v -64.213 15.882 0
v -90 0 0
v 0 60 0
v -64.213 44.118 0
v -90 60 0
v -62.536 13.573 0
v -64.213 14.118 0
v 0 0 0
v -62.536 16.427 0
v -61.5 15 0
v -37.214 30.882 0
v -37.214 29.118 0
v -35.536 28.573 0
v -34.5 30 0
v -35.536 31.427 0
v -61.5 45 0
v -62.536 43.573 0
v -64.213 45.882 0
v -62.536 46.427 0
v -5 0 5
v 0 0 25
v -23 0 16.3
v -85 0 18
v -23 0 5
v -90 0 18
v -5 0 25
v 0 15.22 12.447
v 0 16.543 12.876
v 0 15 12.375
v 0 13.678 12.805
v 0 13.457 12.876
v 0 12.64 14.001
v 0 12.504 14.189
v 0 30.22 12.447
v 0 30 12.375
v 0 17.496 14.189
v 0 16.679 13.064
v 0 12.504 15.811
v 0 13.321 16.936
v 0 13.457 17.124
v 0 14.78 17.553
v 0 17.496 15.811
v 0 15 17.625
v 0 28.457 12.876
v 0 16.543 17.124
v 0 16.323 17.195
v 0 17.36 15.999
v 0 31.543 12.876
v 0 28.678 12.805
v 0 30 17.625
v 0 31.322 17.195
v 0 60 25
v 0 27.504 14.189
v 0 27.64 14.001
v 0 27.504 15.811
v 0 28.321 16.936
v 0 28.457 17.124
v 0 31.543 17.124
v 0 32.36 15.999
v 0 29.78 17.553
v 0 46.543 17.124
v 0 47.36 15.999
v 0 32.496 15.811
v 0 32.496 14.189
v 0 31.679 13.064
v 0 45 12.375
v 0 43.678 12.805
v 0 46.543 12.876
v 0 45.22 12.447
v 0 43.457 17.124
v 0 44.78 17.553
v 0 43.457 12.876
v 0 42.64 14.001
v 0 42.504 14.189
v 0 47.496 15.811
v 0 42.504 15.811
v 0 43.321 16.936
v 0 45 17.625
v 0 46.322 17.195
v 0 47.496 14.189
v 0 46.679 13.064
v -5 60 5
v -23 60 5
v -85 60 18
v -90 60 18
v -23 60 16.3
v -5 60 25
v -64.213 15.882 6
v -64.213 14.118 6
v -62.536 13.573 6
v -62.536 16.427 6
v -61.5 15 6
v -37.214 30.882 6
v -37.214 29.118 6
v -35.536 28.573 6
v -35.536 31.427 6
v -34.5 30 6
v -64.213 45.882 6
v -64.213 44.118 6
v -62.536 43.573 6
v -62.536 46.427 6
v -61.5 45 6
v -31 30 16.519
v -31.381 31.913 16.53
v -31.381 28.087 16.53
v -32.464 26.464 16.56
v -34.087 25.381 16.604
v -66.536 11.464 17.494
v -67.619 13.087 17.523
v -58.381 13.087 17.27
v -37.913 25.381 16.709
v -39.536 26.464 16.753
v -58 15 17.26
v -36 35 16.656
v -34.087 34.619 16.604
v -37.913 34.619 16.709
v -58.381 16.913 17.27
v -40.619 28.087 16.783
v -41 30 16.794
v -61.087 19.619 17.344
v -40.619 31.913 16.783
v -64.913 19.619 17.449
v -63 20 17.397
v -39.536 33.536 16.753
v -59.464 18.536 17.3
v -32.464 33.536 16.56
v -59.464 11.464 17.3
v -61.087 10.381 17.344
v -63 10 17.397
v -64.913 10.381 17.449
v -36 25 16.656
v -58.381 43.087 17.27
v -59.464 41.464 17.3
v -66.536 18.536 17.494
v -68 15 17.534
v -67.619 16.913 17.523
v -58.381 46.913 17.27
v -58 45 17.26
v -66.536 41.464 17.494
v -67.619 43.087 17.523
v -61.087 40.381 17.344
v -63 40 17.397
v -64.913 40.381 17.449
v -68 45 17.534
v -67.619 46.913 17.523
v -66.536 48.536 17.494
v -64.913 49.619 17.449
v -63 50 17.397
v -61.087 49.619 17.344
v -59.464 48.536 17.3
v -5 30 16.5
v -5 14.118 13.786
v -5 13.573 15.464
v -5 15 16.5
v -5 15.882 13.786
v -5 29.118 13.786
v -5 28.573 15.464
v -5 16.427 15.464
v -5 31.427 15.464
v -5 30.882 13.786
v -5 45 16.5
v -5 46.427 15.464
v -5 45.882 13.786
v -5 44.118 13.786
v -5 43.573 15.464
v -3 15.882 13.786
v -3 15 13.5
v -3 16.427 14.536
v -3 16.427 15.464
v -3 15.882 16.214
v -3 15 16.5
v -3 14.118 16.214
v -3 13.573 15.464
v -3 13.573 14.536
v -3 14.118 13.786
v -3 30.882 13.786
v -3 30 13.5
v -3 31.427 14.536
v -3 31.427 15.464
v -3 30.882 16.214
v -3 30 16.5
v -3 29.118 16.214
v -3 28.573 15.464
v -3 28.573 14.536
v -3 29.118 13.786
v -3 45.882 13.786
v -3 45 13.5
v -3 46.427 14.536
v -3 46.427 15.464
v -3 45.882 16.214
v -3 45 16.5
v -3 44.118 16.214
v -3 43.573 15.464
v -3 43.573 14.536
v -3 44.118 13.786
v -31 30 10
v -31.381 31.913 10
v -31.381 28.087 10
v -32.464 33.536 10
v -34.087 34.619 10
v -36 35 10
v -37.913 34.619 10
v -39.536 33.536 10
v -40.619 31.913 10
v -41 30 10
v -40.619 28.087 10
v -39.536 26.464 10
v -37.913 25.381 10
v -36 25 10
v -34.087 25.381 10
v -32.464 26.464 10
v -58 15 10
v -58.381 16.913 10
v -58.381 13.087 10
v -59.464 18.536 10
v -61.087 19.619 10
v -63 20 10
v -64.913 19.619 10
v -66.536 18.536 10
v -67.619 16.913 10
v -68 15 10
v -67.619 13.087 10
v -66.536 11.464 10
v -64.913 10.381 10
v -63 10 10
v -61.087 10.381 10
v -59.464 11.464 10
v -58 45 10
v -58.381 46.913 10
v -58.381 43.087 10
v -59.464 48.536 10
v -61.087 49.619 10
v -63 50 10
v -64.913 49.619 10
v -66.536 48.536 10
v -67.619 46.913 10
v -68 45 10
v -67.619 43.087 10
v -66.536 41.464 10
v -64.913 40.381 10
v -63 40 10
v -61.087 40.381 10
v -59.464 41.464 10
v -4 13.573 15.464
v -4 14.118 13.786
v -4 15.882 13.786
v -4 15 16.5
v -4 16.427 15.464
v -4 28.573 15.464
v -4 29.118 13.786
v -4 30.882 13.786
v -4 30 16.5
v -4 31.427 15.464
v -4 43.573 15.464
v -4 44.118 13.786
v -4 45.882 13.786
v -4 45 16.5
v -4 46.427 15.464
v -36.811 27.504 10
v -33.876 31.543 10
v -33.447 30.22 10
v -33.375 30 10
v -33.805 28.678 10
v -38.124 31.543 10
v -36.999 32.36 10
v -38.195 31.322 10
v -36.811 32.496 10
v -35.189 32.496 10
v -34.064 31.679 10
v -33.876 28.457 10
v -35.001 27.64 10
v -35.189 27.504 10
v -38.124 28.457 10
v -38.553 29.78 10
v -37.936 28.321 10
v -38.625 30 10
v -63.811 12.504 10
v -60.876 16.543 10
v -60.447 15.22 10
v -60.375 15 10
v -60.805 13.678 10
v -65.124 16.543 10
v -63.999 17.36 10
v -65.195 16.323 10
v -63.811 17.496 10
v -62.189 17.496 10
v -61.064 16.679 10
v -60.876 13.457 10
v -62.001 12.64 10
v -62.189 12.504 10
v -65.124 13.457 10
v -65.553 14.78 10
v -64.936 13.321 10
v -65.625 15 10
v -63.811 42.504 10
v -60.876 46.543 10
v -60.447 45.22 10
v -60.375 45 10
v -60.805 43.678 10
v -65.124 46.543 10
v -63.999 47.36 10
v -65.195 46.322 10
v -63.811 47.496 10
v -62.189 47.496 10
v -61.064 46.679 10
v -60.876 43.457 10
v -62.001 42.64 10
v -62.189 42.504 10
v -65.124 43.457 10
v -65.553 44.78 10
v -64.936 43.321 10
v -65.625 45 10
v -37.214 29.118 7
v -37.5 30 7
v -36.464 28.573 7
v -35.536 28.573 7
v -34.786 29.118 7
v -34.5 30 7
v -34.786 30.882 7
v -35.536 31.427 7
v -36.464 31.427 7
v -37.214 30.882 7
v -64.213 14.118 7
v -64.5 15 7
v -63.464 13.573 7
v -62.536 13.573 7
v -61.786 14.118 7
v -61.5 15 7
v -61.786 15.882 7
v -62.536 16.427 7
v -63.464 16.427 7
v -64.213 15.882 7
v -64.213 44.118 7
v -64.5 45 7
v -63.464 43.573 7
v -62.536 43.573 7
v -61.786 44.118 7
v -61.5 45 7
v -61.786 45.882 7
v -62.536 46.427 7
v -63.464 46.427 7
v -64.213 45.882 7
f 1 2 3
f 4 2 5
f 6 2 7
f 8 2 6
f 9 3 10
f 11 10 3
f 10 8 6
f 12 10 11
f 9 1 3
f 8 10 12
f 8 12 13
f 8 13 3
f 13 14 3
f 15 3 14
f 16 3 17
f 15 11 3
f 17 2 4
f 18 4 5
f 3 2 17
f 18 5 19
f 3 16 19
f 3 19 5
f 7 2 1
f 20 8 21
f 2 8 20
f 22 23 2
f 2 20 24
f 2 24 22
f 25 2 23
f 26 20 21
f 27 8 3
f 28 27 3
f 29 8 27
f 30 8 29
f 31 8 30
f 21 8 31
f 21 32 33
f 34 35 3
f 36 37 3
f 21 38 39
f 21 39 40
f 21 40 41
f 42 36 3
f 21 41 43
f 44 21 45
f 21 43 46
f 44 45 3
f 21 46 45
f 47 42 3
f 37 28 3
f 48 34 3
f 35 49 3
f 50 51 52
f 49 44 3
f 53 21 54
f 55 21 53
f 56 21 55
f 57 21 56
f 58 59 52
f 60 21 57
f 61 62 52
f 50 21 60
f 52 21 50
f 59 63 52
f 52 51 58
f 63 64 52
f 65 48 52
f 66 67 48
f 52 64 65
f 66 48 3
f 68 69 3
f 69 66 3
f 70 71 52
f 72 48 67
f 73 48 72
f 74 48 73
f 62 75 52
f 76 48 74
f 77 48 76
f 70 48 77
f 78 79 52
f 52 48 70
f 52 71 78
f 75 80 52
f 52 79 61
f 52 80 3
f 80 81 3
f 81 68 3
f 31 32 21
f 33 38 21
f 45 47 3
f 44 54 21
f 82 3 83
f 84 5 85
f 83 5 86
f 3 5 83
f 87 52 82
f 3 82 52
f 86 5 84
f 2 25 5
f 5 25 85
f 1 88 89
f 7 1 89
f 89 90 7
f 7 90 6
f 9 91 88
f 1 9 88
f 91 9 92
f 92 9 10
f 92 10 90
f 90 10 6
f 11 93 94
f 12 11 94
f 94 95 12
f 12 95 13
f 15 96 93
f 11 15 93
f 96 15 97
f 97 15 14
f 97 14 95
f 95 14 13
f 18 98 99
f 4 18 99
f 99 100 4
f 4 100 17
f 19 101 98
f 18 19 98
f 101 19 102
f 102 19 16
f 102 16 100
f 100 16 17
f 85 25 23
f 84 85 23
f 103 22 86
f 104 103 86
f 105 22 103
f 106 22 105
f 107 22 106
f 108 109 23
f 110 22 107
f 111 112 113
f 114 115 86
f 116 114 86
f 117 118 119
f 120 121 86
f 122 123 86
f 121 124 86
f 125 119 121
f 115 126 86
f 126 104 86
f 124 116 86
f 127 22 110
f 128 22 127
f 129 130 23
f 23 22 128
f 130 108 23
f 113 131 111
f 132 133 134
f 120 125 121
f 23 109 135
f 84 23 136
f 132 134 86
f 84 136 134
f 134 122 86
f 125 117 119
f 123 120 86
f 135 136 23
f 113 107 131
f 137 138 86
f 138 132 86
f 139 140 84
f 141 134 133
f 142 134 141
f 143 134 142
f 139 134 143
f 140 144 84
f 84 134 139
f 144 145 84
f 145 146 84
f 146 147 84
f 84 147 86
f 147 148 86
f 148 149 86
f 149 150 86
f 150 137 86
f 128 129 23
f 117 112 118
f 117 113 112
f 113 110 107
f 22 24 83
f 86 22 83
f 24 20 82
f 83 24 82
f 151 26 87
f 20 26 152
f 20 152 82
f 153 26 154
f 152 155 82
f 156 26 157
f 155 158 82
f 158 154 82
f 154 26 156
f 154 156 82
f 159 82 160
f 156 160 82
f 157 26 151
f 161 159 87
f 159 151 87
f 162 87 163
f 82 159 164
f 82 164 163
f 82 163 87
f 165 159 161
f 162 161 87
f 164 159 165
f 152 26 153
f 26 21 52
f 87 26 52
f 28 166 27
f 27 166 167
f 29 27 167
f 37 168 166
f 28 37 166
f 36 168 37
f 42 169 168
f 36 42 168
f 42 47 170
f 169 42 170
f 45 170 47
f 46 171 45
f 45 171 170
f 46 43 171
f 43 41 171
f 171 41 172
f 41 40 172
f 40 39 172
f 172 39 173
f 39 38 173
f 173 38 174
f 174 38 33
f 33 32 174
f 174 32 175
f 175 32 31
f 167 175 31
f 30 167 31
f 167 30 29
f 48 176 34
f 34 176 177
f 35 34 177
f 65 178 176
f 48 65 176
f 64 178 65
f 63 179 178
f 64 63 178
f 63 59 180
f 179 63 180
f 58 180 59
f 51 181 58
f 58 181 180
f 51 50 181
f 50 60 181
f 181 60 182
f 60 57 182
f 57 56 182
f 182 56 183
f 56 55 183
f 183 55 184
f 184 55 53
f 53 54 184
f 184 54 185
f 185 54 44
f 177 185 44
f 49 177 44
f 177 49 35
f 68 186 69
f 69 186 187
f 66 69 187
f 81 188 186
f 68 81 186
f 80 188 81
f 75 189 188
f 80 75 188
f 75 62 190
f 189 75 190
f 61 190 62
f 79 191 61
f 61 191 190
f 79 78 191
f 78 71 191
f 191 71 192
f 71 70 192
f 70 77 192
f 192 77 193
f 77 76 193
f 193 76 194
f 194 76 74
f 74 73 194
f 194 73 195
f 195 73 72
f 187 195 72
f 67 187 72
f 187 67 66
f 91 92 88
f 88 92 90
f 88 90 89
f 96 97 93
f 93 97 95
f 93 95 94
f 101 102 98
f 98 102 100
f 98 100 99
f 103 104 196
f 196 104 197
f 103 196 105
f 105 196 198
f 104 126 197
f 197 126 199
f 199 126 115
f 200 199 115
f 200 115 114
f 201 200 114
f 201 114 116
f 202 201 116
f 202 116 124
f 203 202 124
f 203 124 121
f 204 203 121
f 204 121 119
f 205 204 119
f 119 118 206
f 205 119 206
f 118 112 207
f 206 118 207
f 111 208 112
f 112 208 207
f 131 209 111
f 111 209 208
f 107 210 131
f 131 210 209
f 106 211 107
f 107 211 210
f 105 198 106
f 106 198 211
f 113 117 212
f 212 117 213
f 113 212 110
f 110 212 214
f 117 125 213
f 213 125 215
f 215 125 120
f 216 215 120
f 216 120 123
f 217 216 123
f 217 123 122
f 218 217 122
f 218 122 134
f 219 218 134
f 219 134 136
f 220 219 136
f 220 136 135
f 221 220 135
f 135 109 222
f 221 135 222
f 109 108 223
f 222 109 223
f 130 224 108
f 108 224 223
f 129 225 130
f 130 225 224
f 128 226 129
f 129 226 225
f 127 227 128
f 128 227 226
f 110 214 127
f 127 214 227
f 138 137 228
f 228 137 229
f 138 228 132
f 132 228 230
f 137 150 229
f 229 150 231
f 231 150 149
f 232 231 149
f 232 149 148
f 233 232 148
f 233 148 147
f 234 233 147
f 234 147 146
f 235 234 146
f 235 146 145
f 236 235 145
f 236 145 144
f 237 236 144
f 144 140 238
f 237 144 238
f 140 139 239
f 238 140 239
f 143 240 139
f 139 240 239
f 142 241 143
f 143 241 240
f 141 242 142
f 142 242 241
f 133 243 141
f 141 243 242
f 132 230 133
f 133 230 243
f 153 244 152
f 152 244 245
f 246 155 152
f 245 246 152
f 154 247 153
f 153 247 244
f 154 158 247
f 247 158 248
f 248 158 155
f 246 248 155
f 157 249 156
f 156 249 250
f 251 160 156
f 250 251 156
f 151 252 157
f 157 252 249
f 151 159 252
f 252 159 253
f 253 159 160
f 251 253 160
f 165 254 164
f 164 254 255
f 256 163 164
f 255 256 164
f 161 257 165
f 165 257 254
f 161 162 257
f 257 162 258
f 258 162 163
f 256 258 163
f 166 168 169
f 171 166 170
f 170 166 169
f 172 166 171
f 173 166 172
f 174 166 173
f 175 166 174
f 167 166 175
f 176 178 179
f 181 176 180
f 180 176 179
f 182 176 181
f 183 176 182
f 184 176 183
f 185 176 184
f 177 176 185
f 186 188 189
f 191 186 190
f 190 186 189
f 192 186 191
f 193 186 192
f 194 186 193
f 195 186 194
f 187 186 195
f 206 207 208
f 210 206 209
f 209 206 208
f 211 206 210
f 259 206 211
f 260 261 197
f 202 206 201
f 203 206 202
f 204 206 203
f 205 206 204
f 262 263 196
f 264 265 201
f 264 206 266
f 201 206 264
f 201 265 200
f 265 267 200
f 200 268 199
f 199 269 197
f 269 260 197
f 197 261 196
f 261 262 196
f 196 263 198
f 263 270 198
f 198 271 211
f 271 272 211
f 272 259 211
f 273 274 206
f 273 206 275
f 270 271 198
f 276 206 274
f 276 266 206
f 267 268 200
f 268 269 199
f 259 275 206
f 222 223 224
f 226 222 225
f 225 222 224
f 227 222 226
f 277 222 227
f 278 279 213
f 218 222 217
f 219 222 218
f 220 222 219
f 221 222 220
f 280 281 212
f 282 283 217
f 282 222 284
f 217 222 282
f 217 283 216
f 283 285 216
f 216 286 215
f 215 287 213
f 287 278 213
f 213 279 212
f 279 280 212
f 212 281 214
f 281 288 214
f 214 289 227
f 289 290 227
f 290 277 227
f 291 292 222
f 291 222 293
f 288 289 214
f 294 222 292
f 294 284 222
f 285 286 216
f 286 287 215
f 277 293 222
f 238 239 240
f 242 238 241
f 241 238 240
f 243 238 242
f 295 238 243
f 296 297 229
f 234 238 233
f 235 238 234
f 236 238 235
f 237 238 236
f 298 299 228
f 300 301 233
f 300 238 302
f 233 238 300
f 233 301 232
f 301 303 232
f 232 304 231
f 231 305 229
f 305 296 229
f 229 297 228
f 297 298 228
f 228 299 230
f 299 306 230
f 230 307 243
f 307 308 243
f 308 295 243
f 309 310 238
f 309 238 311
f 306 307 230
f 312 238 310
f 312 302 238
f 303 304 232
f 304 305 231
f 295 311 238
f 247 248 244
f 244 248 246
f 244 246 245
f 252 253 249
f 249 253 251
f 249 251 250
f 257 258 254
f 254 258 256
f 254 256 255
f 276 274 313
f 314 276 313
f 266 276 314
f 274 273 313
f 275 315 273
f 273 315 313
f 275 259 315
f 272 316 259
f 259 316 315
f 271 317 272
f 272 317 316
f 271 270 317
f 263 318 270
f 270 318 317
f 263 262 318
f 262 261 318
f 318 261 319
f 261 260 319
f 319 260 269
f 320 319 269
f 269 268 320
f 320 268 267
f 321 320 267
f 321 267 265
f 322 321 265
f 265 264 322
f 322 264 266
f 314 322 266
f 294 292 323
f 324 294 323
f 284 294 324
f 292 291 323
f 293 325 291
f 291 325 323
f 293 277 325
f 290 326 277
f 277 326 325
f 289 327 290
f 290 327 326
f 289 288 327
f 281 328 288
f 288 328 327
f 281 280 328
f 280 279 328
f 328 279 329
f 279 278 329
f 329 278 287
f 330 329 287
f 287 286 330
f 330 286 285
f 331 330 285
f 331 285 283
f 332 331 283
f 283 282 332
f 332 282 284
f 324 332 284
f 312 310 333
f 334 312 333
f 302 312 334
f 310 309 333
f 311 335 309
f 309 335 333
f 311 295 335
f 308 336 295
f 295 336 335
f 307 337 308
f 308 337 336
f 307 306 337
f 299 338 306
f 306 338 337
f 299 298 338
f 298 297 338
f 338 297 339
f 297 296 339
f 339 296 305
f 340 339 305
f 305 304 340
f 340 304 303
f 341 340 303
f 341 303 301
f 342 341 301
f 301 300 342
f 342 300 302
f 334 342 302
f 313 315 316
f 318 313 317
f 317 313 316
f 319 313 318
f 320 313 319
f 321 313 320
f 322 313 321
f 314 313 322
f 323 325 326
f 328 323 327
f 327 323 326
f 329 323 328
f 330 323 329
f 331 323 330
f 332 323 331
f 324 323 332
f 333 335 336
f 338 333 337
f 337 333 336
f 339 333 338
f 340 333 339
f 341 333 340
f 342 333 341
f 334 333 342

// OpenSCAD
/*
 *   bench_spacer.scad
 *   Creates a plastic part for fixing a table top to a table.
 *   Copyright (C) 2014  Mogue Carpenter
 *
 *    This program is free software: you can redistribute it and/or modify
 *    it under the terms of the GNU General Public License as published by
 *    the Free Software Foundation, either version 3 of the License, or
 *    (at your option) any later version.
 *
 *    This program is distributed in the hope that it will be useful,
 *    but WITHOUT ANY WARRANTY; without even the implied warranty of
 *    MERCHANTABILITY or FITNESS FOR A PARTICULAR PURPOSE.  See the
 *    GNU General Public License for more details.

 *    You should have received a copy of the GNU General Public License
 *    along with this programbvngn  If not, see <http://www.gnu.org/licenses/>.
*/

lenght = 90;
width = 60;
height = 25;

lip_width = 23;
inner_lip_height = 16.3;
outer_lip_height = 18;

screw_walls = 10;

walls = 5;
board_top_height = 10;
base_h = height-board_top_height;

rotate ([0,-90,0])
difference(){
	base();
	screws();
}

module screws(){
	translate([base_h,width*0.25,0]) rotate ([180,0,0])
		screw_hole(walls+10,3,1.5);
	translate([base_h,width*0.5,0]) rotate ([180,0,0])
		screw_hole(walls+10,3,1.5);
	translate([base_h,width*0.75,0]) rotate ([180,0,0])
		screw_hole(walls+10,3,1.5);

	translate([screw_walls,width*0.25,lenght*0.70]) rotate ([0,90,0]){
			screw_hole(outer_lip_height+1,3,1.5);
			cylinder(h=outer_lip_height-screw_walls, r=5 );
		}
	translate([screw_walls,width*0.75,lenght*0.70]) rotate ([0,90,0]){
			screw_hole(outer_lip_height+1,3,1.5);
			cylinder(h=outer_lip_height-screw_walls, r=5 );
		}
	translate([screw_walls,width*0.5,lenght*0.4]) rotate ([0,90,0]){
			screw_hole(outer_lip_height+1,3,1.5);
			cylinder(h=outer_lip_height-screw_walls, r=5 );
		}
}

module base(){
	// under plate
	cube([height,width,walls]);
  // frount plate
	translate([0,0,0])
		cube([walls,width,lenght]);
	// lip
	hull(){
	translate([0,0,lip_width+walls]) rotate([0,90,0])
		cube([walls,width,inner_lip_height]);
	// outer lip
	translate([0,0,lenght]) rotate([0,90,0])
		cube([walls,width,outer_lip_height]);	
	}
}

module screw_hole(sl,scs,sr){

	screw_lenght = sl;
	screw_r = sr;
	counter_sink_h = scs;

	translate([0,0,-screw_lenght-counter_sink_h-1])
		cylinder(h=screw_lenght,r=screw_r, center=false);
	translate([0,0,-counter_sink_h])
		cylinder(h=counter_sink_h+1,r1=screw_r,r2=screw_r*2, center=false);

}
